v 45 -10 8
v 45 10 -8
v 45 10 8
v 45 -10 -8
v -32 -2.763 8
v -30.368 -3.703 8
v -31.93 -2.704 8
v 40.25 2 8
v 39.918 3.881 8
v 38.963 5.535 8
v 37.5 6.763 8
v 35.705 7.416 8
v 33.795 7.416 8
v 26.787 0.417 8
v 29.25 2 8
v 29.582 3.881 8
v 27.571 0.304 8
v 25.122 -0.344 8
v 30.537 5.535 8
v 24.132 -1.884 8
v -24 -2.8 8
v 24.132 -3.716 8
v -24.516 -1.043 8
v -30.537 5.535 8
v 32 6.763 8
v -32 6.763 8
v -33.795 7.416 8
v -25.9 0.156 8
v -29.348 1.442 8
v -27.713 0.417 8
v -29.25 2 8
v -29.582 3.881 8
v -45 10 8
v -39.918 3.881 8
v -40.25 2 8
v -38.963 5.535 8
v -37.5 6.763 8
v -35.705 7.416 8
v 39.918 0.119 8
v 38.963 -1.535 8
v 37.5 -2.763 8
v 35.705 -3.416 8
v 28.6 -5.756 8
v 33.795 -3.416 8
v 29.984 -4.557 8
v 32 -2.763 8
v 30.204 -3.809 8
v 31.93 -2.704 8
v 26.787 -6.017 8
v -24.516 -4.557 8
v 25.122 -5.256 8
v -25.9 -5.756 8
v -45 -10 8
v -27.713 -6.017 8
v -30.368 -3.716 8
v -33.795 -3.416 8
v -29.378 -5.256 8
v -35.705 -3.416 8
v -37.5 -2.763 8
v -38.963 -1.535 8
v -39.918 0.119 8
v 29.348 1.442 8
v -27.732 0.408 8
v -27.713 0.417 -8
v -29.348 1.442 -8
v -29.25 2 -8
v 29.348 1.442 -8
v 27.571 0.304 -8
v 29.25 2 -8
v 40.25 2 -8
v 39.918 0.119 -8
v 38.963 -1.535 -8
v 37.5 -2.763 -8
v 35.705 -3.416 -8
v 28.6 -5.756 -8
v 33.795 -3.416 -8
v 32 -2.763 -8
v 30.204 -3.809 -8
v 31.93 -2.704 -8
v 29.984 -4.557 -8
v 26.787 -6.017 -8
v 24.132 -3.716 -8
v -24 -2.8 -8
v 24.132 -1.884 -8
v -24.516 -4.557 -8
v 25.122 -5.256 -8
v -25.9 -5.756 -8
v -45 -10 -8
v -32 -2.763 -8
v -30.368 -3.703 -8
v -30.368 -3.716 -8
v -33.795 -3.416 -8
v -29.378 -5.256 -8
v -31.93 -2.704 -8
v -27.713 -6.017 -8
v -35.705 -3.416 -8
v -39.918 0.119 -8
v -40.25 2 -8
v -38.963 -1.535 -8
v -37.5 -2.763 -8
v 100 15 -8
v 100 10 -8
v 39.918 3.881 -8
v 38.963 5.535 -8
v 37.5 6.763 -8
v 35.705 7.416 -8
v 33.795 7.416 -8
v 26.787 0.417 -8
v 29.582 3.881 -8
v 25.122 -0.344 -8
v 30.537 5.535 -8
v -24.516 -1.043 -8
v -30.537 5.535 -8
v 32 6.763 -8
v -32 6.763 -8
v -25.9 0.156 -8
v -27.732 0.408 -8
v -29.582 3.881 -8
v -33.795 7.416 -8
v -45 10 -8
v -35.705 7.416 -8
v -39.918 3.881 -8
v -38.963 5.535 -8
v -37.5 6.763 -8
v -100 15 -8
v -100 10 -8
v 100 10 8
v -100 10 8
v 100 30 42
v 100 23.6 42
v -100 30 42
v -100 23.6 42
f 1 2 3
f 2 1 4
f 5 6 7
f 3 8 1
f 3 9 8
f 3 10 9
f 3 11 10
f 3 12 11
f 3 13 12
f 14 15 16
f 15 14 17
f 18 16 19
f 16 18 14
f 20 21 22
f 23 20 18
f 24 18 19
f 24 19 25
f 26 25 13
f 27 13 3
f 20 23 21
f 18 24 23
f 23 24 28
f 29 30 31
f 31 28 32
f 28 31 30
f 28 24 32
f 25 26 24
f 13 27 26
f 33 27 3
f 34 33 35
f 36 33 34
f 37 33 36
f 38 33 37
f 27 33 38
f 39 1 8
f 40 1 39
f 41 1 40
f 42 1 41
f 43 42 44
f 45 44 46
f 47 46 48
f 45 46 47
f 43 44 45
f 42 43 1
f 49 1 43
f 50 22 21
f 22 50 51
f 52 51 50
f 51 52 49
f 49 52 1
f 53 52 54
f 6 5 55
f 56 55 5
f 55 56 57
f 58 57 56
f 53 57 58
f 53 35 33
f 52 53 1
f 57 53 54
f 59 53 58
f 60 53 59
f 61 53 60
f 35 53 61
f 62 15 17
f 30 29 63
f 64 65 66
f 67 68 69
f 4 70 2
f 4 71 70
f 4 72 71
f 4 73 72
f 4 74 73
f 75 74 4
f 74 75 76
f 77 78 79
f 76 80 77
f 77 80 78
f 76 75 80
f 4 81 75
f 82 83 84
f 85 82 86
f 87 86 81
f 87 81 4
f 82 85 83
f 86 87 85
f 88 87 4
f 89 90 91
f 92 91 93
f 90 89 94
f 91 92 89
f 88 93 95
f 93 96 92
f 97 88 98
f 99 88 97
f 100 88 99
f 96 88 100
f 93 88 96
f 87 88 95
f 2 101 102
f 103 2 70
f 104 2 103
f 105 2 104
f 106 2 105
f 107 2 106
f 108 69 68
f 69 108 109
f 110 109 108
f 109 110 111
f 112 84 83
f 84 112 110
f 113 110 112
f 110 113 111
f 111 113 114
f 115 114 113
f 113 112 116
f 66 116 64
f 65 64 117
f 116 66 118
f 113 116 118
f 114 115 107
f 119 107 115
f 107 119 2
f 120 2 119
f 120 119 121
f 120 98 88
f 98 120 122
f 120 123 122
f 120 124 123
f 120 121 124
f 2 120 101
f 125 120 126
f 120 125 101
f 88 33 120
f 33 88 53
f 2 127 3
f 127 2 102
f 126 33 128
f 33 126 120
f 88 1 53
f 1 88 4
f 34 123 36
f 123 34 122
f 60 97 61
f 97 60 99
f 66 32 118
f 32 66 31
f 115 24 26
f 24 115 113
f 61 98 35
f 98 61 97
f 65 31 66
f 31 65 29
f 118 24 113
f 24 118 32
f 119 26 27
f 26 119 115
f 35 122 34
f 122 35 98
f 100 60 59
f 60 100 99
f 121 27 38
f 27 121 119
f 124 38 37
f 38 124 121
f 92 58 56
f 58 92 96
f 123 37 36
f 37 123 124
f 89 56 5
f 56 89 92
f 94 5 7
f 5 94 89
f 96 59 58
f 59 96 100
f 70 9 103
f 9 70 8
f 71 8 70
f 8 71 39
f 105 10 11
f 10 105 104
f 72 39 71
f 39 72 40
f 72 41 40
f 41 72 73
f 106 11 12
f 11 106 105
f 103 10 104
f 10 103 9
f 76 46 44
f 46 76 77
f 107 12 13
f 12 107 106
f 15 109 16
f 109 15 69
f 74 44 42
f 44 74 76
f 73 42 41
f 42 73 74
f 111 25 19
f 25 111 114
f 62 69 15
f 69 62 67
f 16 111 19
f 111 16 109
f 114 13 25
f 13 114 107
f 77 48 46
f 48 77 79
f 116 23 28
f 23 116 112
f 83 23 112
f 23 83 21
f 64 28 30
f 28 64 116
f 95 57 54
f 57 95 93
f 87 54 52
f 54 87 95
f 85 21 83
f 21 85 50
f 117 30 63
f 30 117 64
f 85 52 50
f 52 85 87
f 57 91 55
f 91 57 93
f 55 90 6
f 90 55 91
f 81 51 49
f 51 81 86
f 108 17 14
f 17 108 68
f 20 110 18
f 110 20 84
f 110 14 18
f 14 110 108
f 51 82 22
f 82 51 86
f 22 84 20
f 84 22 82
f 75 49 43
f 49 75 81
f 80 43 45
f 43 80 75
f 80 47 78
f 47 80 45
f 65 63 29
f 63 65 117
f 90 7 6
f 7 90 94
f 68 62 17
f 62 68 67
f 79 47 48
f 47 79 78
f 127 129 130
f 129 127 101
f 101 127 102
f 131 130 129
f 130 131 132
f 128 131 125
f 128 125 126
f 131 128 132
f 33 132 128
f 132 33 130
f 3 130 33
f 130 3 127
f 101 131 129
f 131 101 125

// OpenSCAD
// Base dimensions
base_width = 20;
base_length = 90;
base_thickness = 16; // Adjust as needed

// Outer hole parameters
outer_hole_diameter = 11; // Diameter with tolerance
outer_hole_spacing = 69.5;
outer_hole_offset_y = 2; // Offset of the outer holes from the base center (y-axis)

// Calculate outer hole center positions
outer_hole1_x = -outer_hole_spacing / 2;
outer_hole2_x = outer_hole_spacing / 2;
// outer_hole_y remains outer_hole_offset_y

// Inner hole parameters
inner_hole_diameter = 6.5;
inner_hole_spacing = 54.5;
// Relative offset of the inner holes from the outer holes (along y-axis)
// A negative value places inner holes "below" (lesser y) the outer holes
inner_hole_relative_offset_y = -4.8;

// Calculate inner hole center positions (relative to the base center)
inner_hole1_x = -inner_hole_spacing / 2;
inner_hole2_x = inner_hole_spacing / 2;
// Calculate absolute Y position for inner holes
inner_hole_y_pos = outer_hole_offset_y + inner_hole_relative_offset_y;

// Channel parameters
channel_diameter = 5; // The width of the channel, defined as a diameter for hulling cylinders
channel_height = base_thickness + 1; // Ensure it cuts through completely

// --- Modules ---

// Create the base plate
module base() {
  cube([base_length, base_width, base_thickness], center = true);
}

// Create an outer hole (using cylinder for subtraction)
module outer_hole() {
  // Use a slightly taller cylinder for clean subtraction
  cylinder(d = outer_hole_diameter, h = base_thickness + 1, center = true);
}

// Create an inner hole (using cylinder for subtraction)
module inner_hole() {
  // Use a slightly taller cylinder for clean subtraction
  cylinder(d = inner_hole_diameter, h = base_thickness + 1, center = true);
}

// Wing Dimensions
wing_length = 200; // Total length of the wing (X-axis)
wing_height = 50;  // Max height of the wing at the front (Z-axis)
back_width = 20;   // Width of the wing at the mounting face (Y-axis)
front_taper_width = 10; // Width of the wing at the very front, top edge (Y-axis) - Adjust taper here
wing_start_z_mm = wing_height/2 - base_thickness/2;
wing_bottom_thickness_mm=5;

module triangle_2d(base, height) {
  // Define the points of the 2D triangle in the XY plane
  // Starting at origin [0,0]
  points = [
    [0, 0],        // Point 1: Origin
    [base, 0],     // Point 2: Along the X axis
    [0, height]    // Point 3: Along the Y axis (creates a right-angled triangle)
    // For an isosceles triangle centered on Y axis:
    // [triangle_base / 2, triangle_height]
  ];
  // Create the 2D polygon
  polygon(points);
}

module wing() {

    difference(){
    
    translate([0,base_width,wing_start_z_mm])
        cube([wing_length,back_width,wing_height],center = true);
    
    // Remove front part
    translate([0,base_width/2, base_thickness/2 + wing_height])
        rotate([90, 180, 270])
        linear_extrude(height = wing_length, center = true) {
         triangle_2d(base = back_width, height = wing_height);
    }
    
    // Remove back part
    translate([0,base_width/2 + back_width, -base_thickness/2 ])
        rotate([90, 0, 270])
        linear_extrude(height = wing_length, center = true) {
         triangle_2d(base = back_width-wing_bottom_thickness_mm, height = wing_height);
    }
   }
}


// --- Main Assembly ---

union()
{
    wing();

    difference() {
      // 1. Start with the base
      base();

      // 2. Subtract the main holes
      // Outer holes
      translate([outer_hole1_x, outer_hole_offset_y, 0]) outer_hole();
      translate([outer_hole2_x, outer_hole_offset_y, 0]) outer_hole();

      // Inner holes
      translate([inner_hole1_x, inner_hole_y_pos, 0]) inner_hole();
      translate([inner_hole2_x, inner_hole_y_pos, 0]) inner_hole();

      // 3. Subtract the smooth connecting channels using hull()

      // Channel 1 (Left side: connects outer_hole1 and inner_hole1)
      hull() {
        // Cylinder at outer hole 1 center
        translate([outer_hole1_x, outer_hole_offset_y, 0])
          cylinder(d = channel_diameter, h = channel_height, center = true);
        // Cylinder at inner hole 1 center
        translate([inner_hole1_x, inner_hole_y_pos, 0])
          cylinder(d = channel_diameter, h = channel_height, center = true);
      }

      // Channel 2 (Right side: connects outer_hole2 and inner_hole2)
      hull() {
        // Cylinder at outer hole 2 center
        translate([outer_hole2_x, outer_hole_offset_y, 0])
          cylinder(d = channel_diameter, h = channel_height, center = true);
        // Cylinder at inner hole 2 center
        translate([inner_hole2_x, inner_hole_y_pos, 0])
          cylinder(d = channel_diameter, h = channel_height, center = true);
      }
    }
}
